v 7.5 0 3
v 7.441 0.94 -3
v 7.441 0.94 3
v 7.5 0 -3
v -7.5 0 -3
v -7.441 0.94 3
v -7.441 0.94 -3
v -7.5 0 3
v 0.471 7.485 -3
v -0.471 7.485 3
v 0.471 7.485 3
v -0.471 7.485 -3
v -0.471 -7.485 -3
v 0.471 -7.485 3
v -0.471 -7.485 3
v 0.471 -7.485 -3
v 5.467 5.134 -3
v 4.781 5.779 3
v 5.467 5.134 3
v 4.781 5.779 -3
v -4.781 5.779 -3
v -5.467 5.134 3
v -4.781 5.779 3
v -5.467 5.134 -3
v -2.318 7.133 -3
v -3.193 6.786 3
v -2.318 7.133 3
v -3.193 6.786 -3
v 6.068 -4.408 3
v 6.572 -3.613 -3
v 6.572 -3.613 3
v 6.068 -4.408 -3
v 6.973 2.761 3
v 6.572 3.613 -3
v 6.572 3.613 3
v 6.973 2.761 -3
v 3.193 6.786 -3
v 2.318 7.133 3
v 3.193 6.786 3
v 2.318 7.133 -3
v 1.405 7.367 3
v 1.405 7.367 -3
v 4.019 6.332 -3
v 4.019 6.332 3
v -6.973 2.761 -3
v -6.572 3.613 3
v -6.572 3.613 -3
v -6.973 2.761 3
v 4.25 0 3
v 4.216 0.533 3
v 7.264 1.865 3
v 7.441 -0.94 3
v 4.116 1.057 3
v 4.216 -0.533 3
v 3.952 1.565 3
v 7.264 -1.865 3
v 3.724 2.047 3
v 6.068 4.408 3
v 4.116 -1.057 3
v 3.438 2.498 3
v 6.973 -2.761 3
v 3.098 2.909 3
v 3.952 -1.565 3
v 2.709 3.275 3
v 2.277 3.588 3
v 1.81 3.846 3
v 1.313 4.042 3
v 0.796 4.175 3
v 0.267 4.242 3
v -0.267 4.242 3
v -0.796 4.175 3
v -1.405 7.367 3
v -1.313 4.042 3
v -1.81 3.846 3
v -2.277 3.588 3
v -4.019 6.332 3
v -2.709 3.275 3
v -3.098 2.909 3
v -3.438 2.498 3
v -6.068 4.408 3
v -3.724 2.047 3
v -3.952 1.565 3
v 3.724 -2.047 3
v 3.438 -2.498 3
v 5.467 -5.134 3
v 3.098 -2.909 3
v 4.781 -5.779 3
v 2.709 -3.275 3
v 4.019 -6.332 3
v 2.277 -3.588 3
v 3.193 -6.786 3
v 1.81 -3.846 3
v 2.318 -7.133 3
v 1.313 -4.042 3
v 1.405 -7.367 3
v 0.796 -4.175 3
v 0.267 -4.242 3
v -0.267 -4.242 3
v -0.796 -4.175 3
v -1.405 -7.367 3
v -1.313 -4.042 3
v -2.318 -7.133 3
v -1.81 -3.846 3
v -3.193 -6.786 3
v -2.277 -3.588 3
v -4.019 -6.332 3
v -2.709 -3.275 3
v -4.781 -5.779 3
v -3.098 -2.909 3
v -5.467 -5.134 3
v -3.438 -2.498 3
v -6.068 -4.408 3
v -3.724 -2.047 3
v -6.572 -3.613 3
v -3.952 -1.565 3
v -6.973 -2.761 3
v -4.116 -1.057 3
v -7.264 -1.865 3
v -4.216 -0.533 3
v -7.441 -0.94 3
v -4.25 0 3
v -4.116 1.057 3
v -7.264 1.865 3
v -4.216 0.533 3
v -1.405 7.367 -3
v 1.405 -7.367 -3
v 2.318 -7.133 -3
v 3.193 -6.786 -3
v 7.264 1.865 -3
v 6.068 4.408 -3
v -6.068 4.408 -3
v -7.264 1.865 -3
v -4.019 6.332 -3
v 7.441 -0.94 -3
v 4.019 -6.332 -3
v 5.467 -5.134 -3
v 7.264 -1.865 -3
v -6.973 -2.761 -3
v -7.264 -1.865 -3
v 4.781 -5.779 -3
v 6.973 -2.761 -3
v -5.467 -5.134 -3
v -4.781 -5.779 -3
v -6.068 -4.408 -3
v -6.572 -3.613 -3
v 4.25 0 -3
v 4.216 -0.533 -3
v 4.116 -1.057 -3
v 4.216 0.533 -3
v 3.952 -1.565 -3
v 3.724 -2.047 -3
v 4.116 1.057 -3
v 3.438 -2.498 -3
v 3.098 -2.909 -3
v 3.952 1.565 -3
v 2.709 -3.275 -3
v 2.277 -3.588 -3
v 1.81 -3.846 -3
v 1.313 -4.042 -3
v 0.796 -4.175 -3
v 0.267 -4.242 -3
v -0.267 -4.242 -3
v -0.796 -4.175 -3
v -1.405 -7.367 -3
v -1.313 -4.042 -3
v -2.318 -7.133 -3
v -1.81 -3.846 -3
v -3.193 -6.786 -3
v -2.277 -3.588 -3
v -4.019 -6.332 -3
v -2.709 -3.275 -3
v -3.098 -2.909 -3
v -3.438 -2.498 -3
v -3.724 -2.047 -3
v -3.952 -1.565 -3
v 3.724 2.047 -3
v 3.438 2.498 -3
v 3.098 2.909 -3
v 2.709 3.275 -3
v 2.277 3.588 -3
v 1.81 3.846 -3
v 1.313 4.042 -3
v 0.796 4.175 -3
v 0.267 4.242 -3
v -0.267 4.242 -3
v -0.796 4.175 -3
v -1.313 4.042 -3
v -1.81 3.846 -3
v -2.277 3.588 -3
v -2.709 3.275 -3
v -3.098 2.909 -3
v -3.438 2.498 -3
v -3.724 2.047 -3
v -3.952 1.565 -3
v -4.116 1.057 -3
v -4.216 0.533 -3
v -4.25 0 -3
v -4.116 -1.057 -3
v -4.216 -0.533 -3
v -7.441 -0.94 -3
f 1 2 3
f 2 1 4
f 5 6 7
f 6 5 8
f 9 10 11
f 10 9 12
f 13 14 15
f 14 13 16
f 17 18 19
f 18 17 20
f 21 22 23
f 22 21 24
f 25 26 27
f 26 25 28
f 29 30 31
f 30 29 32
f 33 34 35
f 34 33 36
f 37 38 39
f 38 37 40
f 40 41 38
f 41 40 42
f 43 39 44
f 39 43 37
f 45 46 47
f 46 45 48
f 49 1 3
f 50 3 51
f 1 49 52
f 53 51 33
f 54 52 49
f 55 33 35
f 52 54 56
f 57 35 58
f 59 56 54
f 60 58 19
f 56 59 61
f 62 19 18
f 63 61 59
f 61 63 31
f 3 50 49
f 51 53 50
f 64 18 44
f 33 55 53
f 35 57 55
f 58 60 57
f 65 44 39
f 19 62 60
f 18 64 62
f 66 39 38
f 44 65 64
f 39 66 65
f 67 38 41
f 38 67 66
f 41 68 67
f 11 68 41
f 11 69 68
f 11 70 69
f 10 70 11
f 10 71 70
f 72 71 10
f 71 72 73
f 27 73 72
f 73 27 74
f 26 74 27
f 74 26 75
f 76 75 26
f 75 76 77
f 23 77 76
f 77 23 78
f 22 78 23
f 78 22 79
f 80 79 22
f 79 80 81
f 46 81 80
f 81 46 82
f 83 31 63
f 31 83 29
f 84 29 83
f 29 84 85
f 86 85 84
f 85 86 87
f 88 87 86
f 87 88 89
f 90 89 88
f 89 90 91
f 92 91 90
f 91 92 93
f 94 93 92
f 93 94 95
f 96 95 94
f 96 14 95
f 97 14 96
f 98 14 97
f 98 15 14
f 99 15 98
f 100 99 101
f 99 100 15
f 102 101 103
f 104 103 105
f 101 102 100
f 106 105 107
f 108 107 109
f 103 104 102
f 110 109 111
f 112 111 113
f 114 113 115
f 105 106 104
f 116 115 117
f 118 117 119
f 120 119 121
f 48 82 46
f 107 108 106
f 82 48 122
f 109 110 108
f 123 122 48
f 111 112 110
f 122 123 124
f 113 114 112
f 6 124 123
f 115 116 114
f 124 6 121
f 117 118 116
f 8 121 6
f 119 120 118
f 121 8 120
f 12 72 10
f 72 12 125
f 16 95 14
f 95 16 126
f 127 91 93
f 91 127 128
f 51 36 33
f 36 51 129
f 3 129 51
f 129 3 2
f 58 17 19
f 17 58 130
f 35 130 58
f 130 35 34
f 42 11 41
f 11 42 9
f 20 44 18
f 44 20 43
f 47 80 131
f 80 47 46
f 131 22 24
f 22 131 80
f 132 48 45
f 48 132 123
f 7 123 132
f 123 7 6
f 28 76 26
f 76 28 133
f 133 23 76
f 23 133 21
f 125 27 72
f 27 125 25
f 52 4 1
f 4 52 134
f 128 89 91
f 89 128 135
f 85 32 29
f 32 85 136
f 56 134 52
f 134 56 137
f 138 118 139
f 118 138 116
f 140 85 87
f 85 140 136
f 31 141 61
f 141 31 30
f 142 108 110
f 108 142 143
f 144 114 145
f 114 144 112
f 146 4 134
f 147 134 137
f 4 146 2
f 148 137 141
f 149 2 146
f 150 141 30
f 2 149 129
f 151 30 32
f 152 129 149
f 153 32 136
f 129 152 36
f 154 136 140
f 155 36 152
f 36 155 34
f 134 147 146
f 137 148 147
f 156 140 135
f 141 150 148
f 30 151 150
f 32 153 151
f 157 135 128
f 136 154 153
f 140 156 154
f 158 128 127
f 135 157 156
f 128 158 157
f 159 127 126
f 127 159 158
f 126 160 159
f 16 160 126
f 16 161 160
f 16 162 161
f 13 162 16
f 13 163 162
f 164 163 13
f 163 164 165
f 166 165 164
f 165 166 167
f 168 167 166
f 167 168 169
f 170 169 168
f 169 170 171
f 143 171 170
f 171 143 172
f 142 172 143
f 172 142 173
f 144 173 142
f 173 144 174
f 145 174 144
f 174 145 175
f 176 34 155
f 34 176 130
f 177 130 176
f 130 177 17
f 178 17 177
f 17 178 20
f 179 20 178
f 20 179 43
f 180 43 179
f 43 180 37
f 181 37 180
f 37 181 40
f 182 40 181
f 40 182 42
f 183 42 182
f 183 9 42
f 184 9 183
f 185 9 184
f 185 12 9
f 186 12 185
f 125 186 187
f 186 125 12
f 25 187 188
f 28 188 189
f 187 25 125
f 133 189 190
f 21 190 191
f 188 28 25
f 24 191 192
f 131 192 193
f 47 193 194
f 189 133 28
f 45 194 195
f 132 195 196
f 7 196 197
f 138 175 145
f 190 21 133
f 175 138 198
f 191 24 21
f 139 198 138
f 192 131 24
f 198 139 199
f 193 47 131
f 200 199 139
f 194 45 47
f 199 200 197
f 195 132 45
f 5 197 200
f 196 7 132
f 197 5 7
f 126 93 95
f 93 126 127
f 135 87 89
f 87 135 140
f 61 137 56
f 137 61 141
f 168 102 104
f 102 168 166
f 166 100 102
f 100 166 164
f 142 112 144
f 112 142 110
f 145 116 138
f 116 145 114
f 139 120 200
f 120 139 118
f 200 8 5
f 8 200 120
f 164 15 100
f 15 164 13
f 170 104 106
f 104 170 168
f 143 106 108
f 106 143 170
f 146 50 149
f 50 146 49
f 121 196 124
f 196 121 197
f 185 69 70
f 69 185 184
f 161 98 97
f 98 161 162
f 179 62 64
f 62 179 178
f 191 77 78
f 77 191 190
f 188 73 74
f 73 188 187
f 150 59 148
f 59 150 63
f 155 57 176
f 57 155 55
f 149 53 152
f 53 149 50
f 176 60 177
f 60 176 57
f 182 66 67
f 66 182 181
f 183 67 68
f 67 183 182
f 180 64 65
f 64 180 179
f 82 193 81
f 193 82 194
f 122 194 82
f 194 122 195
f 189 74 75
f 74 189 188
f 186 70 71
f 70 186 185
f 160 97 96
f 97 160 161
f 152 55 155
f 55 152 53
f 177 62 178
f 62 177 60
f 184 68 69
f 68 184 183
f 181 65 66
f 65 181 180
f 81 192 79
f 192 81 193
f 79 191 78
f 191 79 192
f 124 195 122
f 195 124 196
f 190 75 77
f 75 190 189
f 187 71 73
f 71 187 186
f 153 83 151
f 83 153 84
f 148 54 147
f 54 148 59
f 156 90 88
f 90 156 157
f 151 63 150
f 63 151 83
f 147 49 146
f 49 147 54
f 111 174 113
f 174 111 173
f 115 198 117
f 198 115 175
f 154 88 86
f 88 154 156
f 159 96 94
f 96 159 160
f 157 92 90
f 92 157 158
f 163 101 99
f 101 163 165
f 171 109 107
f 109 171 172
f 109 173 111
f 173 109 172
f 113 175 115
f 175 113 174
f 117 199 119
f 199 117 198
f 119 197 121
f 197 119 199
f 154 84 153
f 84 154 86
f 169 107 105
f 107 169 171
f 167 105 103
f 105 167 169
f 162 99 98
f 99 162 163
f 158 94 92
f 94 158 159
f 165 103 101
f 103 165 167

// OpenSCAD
$fn = 50;


difference() {
	union() {
		translate(v = [0, 0, -3.0000000000]) {
			cylinder(h = 6, r = 7.5000000000);
		}
	}
	union() {
		translate(v = [0, 0, -100.0000000000]) {
			cylinder(h = 200, r = 4.2500000000);
		}
	}
}
